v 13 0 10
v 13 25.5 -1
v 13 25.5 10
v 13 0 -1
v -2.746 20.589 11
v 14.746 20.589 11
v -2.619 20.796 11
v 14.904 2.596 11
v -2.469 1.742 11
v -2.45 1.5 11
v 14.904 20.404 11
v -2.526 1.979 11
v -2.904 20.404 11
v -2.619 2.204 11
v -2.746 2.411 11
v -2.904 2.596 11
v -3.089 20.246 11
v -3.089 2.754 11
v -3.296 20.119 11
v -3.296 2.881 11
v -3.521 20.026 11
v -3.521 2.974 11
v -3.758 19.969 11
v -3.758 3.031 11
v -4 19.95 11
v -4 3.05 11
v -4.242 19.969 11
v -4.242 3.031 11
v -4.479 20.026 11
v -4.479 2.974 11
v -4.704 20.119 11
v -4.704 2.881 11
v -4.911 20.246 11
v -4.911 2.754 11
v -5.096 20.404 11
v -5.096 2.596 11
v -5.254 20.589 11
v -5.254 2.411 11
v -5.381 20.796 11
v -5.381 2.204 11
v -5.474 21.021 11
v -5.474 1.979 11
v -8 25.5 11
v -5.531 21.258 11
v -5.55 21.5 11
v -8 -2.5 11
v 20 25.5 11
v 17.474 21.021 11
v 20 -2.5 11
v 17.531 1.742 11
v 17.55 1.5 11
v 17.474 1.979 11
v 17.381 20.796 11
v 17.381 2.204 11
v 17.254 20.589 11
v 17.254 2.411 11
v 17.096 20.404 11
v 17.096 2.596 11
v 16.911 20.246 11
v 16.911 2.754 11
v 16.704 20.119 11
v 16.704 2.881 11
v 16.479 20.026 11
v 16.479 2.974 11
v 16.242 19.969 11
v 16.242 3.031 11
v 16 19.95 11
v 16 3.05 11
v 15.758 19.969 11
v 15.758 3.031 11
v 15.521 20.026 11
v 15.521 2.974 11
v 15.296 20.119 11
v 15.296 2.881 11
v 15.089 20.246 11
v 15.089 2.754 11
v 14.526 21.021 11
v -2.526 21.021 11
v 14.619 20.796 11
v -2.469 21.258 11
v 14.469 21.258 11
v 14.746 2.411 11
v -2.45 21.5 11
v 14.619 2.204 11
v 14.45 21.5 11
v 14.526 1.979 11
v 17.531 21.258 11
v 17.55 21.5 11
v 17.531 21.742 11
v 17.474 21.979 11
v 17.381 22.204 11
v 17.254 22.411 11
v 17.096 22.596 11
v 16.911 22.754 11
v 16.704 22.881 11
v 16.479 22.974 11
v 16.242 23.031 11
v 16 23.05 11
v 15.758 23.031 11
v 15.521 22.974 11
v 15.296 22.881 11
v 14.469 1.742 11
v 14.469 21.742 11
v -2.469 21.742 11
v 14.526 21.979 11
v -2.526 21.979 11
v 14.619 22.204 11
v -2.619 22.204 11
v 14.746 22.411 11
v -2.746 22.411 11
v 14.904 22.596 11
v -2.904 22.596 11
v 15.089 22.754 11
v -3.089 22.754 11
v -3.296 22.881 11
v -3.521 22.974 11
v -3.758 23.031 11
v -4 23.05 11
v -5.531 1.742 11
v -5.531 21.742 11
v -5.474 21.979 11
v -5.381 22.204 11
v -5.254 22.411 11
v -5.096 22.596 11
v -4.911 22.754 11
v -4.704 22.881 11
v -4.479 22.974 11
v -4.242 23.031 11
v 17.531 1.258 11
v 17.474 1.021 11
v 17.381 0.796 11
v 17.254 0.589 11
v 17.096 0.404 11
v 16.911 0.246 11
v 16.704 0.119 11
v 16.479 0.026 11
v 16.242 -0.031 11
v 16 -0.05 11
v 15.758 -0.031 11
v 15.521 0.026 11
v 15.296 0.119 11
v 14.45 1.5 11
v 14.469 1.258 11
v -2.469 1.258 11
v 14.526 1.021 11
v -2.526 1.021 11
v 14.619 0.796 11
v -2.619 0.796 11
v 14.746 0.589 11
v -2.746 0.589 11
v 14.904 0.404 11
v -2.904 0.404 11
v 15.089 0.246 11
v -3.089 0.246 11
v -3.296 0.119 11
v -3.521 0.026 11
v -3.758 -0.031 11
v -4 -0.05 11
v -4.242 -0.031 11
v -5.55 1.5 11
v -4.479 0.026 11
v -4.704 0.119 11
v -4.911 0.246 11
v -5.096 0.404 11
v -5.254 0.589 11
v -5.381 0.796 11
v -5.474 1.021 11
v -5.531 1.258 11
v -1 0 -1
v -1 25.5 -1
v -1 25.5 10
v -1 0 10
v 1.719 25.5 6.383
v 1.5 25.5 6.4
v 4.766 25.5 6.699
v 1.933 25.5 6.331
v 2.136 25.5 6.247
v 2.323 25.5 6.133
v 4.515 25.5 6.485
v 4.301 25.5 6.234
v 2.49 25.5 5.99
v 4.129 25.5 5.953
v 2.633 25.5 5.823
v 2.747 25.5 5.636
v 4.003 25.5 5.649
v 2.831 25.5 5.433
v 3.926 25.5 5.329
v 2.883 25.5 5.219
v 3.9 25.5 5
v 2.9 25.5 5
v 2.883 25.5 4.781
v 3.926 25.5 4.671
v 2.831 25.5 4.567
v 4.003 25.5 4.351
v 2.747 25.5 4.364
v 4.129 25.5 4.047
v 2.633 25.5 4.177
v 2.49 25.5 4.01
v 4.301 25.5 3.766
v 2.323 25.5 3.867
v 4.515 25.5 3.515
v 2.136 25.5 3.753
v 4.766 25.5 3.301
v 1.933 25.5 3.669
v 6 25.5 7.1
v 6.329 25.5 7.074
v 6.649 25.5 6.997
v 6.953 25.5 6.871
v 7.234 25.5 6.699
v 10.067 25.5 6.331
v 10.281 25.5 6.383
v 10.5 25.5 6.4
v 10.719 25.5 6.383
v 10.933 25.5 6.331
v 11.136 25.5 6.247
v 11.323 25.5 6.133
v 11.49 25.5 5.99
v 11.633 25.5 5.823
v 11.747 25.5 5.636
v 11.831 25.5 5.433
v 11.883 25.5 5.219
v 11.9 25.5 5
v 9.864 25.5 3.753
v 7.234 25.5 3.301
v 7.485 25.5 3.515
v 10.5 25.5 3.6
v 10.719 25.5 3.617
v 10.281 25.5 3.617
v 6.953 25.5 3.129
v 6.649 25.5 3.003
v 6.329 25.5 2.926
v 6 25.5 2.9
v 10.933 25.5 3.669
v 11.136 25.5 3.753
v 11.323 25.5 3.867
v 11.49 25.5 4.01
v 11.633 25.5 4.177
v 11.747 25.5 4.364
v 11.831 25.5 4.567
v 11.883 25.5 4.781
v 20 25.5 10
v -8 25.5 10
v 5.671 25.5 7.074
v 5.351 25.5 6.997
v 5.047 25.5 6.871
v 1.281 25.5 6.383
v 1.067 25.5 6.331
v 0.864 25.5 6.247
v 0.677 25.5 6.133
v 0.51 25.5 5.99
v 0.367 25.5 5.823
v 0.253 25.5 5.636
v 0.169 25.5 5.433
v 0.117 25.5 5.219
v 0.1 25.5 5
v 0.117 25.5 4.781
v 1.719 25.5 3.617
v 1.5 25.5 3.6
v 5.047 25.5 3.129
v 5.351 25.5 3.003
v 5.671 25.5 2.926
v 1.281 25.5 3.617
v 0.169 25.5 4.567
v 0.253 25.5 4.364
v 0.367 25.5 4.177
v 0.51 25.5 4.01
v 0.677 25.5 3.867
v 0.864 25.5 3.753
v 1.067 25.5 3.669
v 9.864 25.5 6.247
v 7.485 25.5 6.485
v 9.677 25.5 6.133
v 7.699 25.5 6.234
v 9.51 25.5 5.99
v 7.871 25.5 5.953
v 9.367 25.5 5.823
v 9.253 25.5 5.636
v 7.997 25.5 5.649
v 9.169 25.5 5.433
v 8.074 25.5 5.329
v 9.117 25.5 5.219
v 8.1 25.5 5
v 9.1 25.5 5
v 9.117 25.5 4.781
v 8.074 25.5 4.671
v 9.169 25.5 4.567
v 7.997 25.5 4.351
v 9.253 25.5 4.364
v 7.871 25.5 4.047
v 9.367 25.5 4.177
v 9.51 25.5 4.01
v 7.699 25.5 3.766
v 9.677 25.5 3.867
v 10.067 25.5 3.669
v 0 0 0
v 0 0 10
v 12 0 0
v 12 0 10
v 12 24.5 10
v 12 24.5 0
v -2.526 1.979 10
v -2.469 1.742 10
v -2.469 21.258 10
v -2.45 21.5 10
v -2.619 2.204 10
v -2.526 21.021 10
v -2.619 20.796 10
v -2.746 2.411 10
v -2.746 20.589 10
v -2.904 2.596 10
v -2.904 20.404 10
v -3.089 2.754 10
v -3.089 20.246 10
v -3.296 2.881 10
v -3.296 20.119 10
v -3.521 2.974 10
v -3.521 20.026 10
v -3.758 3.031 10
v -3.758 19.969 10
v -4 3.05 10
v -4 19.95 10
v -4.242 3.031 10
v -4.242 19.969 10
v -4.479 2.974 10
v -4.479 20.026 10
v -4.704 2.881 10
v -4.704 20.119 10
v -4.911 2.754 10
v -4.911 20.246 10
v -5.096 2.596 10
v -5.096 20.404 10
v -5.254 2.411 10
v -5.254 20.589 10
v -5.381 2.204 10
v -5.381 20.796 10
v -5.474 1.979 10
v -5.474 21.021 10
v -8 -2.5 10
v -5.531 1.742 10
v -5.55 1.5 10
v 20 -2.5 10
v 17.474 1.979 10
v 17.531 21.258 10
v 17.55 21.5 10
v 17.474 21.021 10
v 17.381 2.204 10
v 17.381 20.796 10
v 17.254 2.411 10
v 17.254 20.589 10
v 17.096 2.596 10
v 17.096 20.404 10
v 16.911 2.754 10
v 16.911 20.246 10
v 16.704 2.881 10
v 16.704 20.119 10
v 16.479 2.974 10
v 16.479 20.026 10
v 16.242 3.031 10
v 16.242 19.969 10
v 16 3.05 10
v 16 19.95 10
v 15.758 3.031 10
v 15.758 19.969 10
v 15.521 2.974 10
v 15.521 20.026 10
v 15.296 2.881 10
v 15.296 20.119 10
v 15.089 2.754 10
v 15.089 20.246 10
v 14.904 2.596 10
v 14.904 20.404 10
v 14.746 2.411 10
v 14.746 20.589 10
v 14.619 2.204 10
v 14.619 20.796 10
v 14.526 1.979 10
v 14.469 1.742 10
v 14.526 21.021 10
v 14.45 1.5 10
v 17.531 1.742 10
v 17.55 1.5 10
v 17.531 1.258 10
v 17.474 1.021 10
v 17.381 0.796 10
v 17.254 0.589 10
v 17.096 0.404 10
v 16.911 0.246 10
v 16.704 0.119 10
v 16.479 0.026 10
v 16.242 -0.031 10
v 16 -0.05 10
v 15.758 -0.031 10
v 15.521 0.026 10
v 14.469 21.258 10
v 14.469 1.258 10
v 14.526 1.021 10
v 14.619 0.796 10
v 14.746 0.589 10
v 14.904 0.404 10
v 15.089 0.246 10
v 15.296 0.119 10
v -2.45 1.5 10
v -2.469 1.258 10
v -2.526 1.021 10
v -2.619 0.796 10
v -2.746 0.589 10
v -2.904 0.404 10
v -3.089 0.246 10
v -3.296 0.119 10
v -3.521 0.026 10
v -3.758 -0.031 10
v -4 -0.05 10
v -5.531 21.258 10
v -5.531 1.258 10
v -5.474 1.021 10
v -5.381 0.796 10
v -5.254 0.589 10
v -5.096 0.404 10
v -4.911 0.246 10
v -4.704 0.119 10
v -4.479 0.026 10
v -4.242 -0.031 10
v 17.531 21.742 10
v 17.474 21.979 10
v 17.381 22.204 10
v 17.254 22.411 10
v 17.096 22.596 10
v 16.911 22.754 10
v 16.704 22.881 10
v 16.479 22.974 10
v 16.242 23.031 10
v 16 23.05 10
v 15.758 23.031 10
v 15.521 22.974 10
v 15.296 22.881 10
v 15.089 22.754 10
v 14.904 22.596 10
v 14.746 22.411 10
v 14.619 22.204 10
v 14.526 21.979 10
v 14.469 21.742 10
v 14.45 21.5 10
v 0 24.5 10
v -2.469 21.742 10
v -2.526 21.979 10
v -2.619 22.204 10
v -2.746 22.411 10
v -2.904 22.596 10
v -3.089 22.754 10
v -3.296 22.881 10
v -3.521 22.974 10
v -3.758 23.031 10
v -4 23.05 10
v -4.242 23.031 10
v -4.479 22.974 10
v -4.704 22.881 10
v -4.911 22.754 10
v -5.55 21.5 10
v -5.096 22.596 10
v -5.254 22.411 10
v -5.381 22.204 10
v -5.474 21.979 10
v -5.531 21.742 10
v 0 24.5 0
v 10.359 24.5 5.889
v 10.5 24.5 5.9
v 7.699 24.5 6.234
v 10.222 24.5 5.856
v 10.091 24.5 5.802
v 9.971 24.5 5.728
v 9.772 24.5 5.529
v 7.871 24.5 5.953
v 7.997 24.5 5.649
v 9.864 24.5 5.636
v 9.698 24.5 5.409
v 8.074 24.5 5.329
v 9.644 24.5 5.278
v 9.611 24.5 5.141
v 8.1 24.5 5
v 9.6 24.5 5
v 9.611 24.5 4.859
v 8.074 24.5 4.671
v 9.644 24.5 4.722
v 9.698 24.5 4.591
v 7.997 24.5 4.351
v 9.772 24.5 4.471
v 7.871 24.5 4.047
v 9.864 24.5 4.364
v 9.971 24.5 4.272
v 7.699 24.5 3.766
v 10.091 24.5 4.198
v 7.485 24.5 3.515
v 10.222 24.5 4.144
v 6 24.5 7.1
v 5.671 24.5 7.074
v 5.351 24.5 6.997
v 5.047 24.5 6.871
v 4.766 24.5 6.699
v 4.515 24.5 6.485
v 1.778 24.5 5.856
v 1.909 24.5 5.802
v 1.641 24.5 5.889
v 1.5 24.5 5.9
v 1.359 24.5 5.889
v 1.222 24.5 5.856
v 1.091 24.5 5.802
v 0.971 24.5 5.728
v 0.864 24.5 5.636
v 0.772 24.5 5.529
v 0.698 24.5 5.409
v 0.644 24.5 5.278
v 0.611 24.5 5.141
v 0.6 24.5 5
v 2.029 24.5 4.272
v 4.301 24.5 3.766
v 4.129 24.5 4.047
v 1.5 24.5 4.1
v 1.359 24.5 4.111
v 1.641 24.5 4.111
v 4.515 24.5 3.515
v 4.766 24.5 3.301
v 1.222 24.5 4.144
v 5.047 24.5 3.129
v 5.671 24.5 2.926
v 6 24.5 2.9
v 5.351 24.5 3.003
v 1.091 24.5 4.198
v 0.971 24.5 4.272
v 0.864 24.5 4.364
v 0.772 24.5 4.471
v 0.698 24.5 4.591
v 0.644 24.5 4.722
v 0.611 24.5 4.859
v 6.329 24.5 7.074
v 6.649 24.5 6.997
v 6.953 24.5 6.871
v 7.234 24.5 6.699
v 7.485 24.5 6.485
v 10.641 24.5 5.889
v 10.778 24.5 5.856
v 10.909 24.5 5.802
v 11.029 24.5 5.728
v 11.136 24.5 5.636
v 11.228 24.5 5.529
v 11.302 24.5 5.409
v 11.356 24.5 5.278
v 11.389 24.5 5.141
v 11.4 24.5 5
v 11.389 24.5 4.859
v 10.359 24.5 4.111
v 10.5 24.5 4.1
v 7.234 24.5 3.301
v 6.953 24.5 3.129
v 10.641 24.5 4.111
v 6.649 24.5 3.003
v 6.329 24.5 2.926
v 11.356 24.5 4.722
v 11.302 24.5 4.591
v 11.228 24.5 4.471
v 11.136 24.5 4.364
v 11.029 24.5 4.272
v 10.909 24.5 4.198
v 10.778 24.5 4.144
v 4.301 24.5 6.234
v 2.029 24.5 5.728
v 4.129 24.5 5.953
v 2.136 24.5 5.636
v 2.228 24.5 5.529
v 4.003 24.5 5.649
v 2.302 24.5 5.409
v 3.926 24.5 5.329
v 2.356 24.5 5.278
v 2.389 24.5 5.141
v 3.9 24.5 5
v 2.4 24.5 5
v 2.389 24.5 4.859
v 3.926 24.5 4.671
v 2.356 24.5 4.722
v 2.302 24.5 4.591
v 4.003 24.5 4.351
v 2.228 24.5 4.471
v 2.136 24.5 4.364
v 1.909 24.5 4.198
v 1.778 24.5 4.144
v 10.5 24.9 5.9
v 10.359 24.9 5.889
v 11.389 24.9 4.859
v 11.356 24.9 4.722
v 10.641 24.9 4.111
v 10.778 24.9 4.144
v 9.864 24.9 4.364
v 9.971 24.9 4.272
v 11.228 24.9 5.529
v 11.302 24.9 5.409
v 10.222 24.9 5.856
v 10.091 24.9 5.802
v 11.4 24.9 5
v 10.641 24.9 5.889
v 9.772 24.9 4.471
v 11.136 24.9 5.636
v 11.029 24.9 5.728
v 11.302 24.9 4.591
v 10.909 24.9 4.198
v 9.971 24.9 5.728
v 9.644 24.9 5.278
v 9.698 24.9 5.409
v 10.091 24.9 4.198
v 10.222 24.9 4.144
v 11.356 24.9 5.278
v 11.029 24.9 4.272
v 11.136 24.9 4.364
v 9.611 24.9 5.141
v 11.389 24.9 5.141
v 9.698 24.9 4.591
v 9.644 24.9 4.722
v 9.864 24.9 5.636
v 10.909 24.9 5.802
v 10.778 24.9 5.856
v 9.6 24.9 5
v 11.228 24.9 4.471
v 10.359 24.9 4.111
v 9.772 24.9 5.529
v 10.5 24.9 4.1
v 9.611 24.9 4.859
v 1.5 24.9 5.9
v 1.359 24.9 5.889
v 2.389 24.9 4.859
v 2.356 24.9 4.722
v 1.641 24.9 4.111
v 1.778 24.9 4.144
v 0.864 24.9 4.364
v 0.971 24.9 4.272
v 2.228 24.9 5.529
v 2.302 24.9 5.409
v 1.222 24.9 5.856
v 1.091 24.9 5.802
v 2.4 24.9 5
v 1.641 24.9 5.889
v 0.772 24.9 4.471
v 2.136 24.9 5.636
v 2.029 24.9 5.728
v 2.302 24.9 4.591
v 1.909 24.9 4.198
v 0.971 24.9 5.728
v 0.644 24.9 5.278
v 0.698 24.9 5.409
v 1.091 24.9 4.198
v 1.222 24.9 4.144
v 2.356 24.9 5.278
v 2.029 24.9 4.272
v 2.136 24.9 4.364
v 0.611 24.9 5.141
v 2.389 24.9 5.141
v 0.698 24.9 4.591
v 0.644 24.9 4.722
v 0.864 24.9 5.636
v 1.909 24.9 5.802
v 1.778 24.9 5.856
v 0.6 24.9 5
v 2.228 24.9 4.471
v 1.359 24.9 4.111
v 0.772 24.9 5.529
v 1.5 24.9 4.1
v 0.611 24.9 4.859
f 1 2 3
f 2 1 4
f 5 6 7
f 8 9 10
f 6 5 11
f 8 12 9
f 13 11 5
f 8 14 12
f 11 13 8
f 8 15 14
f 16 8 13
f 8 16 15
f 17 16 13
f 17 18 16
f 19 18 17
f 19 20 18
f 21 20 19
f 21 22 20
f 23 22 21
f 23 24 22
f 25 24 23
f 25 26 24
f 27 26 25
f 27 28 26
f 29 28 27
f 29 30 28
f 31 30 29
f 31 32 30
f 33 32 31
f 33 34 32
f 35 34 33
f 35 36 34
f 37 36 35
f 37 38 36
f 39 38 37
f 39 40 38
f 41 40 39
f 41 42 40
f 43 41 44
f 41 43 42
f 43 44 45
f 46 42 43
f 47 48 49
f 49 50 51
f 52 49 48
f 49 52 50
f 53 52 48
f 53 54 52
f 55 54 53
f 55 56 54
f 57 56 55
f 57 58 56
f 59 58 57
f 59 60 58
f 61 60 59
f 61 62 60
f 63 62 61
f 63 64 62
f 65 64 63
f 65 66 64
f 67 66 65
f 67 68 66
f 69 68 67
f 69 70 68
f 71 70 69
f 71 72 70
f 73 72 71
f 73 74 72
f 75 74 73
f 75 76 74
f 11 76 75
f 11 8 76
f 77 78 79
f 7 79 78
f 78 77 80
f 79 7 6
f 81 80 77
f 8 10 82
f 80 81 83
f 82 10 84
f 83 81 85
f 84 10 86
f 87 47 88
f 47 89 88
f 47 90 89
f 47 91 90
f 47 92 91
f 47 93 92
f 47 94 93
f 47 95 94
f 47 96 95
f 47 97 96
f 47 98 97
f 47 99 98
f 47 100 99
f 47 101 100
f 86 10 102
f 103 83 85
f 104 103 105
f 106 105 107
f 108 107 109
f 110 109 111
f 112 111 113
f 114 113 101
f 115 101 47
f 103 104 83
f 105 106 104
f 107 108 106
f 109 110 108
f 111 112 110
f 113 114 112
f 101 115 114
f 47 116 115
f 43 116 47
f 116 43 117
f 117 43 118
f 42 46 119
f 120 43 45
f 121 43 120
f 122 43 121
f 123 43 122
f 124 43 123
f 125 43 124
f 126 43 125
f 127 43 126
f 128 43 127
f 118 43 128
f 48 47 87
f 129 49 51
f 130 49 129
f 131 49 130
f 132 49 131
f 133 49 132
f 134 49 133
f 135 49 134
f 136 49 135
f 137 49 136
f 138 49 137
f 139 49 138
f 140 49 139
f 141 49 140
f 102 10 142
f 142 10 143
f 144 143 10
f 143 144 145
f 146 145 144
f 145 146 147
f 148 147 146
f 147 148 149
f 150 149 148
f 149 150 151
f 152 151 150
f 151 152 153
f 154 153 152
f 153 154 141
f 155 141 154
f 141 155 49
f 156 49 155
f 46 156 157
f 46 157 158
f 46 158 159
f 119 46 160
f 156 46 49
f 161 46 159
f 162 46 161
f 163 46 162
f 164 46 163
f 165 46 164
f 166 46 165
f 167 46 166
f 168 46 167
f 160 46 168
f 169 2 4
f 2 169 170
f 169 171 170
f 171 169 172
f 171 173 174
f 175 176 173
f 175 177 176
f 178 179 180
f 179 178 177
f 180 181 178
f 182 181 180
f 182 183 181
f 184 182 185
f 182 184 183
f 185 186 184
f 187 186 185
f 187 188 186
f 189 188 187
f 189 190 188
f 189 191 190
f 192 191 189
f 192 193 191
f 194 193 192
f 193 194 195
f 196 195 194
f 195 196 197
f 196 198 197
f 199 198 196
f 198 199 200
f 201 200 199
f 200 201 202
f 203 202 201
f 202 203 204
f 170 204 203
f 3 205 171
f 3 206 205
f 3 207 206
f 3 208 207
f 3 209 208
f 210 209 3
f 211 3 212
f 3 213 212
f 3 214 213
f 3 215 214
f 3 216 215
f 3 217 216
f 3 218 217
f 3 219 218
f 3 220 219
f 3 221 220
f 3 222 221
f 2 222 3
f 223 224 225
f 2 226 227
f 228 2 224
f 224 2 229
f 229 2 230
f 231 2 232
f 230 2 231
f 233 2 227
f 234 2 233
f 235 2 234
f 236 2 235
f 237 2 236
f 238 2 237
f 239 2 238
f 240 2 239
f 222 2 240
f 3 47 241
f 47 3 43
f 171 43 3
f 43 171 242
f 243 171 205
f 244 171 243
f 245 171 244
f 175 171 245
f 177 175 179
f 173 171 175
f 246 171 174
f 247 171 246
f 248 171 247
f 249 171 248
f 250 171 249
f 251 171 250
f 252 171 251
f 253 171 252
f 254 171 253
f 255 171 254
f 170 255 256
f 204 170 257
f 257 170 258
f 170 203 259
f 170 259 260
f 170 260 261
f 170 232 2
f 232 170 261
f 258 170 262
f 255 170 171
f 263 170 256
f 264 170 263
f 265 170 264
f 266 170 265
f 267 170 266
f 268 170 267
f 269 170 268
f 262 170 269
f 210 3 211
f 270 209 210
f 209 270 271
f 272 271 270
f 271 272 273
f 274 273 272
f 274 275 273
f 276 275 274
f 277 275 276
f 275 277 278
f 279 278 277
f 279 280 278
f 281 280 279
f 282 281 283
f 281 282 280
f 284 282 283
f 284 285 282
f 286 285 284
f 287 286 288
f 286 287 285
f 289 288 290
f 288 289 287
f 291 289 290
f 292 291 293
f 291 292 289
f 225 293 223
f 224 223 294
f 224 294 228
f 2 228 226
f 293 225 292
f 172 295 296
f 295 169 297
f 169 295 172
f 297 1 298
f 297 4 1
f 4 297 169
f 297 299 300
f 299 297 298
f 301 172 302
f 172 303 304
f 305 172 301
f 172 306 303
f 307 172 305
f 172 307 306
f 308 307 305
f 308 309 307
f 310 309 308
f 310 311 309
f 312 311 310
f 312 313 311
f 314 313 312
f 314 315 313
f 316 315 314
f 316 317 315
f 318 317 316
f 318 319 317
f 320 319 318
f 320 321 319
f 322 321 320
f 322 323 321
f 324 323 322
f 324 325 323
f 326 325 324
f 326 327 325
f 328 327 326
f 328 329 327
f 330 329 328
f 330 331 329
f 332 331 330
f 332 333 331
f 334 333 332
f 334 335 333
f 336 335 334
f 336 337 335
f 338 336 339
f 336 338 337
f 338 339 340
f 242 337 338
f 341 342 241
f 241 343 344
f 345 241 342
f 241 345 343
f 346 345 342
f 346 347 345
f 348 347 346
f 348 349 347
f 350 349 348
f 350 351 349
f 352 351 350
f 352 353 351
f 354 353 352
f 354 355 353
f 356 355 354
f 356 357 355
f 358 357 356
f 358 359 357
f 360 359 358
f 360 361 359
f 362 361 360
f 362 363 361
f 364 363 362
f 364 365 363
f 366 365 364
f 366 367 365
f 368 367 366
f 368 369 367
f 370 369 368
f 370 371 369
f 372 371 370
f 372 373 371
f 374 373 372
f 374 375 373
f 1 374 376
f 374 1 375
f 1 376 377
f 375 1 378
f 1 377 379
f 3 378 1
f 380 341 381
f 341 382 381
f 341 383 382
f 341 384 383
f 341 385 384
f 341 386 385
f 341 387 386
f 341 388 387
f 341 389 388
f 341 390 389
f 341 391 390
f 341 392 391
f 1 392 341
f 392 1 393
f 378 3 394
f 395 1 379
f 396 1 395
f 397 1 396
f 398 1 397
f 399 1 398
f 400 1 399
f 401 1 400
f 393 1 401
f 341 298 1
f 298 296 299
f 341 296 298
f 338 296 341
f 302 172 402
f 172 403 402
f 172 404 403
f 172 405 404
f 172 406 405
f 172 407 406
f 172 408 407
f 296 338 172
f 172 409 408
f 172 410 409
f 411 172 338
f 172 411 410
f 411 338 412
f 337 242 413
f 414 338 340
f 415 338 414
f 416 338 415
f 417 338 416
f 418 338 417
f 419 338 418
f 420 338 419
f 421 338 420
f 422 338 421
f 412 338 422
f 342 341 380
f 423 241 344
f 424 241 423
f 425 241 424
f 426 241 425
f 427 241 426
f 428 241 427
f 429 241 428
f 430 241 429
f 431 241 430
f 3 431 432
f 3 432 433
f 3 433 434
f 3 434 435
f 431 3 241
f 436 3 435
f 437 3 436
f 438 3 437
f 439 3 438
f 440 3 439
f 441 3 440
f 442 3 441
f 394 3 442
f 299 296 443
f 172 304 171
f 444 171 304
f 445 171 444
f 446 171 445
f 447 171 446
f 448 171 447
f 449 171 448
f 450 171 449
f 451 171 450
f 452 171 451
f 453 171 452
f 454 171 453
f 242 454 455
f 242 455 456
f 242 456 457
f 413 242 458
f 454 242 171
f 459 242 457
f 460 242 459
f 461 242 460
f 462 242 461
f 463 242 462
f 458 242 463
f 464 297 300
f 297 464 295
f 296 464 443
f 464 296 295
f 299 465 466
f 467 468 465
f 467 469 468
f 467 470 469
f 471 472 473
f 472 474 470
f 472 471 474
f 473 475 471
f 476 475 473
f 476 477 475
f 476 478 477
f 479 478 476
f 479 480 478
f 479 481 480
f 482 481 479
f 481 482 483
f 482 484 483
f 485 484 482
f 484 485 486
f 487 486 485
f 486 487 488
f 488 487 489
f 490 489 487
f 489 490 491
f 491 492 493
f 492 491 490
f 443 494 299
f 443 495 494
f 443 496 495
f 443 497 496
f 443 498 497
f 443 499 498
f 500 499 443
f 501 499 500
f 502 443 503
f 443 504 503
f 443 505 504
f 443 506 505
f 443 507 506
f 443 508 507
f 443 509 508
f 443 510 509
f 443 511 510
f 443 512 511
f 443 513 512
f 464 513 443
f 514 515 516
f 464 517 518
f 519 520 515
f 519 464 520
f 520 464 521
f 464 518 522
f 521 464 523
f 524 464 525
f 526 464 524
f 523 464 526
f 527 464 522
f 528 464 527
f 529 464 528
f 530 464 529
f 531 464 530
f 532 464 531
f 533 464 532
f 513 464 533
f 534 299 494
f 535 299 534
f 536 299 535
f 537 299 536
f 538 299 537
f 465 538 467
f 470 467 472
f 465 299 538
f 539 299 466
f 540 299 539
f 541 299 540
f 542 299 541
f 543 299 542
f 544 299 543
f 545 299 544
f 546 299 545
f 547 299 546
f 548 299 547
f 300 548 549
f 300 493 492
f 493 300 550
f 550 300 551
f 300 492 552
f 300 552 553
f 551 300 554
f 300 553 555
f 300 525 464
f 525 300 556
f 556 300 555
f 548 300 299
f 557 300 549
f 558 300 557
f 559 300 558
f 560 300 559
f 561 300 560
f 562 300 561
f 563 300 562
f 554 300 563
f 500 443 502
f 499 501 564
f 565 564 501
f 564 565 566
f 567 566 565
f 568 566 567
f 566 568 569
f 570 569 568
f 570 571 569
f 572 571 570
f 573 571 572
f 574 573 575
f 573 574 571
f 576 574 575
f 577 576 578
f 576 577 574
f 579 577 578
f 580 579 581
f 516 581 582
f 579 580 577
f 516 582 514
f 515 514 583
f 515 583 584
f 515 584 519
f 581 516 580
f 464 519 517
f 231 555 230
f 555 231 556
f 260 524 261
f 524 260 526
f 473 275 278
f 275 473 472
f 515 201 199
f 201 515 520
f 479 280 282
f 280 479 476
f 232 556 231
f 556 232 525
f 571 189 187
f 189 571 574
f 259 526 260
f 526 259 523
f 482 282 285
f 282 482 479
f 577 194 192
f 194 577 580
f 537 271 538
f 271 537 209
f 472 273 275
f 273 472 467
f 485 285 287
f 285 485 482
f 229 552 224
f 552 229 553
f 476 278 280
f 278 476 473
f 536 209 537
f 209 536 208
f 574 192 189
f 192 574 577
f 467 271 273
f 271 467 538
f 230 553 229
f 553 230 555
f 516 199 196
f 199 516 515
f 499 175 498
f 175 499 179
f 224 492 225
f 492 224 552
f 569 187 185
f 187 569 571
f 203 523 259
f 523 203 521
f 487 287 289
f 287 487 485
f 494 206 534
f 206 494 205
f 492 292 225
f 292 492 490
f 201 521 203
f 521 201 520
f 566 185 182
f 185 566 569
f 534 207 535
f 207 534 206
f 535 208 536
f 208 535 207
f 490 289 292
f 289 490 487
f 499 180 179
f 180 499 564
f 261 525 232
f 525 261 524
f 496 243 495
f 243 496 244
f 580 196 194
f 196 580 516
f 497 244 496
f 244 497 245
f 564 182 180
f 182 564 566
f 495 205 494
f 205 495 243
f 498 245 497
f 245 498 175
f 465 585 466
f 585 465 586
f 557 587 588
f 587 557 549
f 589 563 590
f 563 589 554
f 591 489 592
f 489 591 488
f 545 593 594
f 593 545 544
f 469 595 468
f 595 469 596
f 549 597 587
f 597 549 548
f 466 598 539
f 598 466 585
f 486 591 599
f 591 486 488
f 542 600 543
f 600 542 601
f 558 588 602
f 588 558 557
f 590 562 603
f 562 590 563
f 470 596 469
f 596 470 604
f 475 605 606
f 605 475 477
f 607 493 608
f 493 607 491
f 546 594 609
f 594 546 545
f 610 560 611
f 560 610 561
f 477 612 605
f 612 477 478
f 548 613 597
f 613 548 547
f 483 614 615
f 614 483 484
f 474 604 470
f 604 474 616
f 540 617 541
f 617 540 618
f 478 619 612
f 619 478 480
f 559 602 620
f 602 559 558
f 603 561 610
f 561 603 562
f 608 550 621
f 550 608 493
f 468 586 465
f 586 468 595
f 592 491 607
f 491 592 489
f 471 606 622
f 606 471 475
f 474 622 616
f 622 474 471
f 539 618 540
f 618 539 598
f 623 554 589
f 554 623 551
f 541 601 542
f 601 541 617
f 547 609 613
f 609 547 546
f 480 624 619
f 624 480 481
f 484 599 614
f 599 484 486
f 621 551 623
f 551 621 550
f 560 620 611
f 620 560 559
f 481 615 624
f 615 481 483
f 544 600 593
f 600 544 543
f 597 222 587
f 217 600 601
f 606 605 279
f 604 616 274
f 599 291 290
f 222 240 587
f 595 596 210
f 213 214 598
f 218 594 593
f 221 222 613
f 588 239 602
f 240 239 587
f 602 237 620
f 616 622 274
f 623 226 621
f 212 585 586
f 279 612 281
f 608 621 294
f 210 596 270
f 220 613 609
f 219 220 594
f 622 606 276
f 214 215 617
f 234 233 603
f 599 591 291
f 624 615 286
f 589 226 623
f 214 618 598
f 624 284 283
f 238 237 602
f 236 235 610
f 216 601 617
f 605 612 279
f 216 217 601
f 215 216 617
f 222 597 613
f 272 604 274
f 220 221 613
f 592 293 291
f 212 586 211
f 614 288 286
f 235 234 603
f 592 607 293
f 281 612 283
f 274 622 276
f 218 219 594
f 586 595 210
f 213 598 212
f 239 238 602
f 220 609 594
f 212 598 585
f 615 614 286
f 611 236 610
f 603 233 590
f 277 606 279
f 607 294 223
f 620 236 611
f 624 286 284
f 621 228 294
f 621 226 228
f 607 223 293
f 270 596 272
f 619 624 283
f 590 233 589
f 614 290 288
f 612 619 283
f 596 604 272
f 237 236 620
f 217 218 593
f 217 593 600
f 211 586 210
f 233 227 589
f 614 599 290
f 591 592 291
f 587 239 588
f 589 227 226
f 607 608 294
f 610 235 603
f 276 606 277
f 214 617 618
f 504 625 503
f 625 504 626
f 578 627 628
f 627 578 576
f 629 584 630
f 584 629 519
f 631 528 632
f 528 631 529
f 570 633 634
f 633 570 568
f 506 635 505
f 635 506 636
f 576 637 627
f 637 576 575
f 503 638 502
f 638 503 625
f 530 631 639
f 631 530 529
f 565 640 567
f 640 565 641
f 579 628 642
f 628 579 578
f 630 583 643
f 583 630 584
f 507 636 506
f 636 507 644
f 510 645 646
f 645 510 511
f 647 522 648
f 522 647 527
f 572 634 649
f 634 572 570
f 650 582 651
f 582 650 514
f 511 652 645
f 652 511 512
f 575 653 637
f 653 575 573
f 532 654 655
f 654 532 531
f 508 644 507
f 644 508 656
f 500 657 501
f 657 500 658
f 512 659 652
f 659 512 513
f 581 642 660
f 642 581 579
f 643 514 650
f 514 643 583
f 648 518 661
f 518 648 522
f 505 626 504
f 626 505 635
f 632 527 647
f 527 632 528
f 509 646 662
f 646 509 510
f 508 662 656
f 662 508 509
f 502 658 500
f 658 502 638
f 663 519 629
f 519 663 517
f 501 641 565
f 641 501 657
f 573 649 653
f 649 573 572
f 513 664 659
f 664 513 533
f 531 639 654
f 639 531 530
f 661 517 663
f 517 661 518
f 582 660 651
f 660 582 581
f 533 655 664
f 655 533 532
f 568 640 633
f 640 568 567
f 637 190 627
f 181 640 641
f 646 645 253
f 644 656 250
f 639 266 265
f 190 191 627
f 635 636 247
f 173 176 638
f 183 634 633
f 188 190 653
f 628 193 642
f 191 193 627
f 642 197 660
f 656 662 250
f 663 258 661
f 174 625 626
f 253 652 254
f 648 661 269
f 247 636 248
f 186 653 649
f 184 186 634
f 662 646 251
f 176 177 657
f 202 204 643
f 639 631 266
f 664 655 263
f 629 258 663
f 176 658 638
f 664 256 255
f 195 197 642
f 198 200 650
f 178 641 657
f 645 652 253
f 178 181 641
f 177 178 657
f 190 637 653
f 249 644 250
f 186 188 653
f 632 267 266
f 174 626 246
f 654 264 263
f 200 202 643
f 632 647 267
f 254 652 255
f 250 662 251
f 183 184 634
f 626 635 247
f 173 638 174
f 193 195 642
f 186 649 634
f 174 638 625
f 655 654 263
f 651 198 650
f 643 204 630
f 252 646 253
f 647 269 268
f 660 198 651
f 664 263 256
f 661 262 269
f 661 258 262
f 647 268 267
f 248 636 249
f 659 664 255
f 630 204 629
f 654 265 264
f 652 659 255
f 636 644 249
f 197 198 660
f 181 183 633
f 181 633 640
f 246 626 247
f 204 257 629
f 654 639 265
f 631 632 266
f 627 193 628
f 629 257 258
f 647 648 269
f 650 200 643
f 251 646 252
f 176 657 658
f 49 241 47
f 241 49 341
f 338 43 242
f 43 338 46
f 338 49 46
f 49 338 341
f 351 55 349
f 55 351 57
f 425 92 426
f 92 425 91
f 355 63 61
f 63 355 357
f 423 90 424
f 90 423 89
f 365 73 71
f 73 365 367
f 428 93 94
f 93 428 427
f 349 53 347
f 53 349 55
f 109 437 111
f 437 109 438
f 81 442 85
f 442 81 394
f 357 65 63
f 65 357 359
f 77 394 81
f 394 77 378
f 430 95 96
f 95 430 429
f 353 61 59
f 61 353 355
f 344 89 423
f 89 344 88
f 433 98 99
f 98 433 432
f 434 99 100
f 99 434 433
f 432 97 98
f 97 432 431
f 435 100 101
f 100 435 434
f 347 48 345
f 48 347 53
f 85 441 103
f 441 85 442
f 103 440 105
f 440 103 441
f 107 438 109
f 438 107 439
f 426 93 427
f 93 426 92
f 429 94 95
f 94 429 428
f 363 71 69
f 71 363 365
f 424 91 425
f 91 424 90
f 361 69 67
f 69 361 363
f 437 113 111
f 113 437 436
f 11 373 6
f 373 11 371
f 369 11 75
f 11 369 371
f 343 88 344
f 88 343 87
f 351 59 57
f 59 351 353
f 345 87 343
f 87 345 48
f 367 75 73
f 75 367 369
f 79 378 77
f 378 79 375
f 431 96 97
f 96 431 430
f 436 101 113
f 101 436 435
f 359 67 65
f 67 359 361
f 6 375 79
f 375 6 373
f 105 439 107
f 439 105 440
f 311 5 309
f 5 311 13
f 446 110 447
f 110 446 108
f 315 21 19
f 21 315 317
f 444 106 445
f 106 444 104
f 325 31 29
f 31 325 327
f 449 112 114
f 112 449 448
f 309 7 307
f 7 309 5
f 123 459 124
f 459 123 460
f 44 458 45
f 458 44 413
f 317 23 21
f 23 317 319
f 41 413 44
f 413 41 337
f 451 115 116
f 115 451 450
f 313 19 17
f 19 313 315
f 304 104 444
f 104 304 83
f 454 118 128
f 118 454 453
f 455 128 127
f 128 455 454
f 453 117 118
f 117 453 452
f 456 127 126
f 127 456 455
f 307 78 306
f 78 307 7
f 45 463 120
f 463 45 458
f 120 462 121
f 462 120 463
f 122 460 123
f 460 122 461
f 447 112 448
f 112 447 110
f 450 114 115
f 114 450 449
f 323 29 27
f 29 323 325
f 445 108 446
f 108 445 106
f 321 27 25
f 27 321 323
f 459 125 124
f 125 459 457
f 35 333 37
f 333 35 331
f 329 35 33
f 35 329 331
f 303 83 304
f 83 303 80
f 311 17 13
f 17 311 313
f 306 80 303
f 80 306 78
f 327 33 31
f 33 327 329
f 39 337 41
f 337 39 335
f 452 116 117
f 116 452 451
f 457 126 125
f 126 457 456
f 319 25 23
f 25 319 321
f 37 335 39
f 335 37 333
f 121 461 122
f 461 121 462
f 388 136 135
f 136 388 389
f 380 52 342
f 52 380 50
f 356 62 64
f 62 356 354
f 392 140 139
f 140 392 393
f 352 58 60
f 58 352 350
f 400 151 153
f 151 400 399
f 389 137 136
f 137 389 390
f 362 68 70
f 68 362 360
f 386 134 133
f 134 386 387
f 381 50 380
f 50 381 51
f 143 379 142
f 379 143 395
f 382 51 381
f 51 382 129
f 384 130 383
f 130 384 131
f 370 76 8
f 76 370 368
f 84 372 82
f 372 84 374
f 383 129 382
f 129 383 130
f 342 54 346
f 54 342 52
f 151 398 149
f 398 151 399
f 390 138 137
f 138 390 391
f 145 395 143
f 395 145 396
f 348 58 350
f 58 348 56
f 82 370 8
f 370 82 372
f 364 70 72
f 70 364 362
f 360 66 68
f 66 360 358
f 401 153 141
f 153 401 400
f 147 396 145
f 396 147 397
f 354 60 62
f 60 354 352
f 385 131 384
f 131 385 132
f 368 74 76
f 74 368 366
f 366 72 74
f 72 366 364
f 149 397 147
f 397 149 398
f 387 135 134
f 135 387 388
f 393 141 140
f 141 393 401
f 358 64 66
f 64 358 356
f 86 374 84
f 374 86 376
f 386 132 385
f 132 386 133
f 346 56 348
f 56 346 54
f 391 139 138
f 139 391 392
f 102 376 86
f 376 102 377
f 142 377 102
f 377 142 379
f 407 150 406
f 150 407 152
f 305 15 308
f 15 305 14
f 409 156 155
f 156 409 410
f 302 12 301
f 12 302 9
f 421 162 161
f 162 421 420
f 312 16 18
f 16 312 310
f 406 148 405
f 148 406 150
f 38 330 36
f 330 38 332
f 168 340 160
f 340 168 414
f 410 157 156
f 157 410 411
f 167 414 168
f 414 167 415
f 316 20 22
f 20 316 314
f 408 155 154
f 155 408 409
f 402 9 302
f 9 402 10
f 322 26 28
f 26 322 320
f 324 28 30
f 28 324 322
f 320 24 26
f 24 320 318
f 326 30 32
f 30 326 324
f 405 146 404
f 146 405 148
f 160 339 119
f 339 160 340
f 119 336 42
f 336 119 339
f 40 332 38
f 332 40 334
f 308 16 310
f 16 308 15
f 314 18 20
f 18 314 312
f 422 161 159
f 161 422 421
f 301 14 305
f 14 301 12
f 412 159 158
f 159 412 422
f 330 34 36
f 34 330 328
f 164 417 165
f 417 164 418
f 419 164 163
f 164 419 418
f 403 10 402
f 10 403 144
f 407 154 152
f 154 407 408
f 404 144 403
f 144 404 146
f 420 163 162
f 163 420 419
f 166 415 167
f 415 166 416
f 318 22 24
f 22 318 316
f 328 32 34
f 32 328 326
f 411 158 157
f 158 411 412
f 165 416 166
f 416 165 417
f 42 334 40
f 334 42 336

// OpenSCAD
width=12;
height=10;
depth=24.5;
wall=1;
shaft_d=4.2;
screw_holes_from_center = 4.5;
screw_hole_d = 1.8;
screw_head_d = 2.8;
screw_head_depth = 0.6;
mounting_hole_distance = 20;
mounting_screw_d = 3.1;
mounting_plate_size = 28;

$fn=40;

module motor_box() {
    difference() {
        difference() {
            translate([-wall,0,-wall])
            cube([width+wall*2, depth+wall, height+wall*2]);
            cube([width, depth, height]);
        }
        translate([width/2,depth,height/2])
        rotate([-90,0,0])
        cylinder(wall, d=shaft_d);
    }
}

module screw_hole(offset) {
    translate([width/2+offset,depth,height/2])
    rotate([-90,0,0])
    union() {
        cylinder(wall, d=screw_hole_d);
        translate([0,0,wall-screw_head_depth])
            cylinder(screw_head_depth, d1=screw_hole_d, d2=screw_head_d);
    }
}

module mounting_screw_hole(x, y) {
    off = mounting_hole_distance / 2;
    translate([
        mounting_plate_size/2 + off*x,
        mounting_plate_size/2 + off*y,
        0
    ])
    cylinder(h=wall, d=mounting_screw_d);
}

module mounting_ears() {
    translate([
        width/2-mounting_plate_size/2,
        (depth+wall)-mounting_plate_size,
        height
    ])
    difference() { 
        cube([mounting_plate_size, mounting_plate_size, wall]);
        mounting_screw_hole(1,1);
        mounting_screw_hole(-1,1);
        mounting_screw_hole(1,-1);
        mounting_screw_hole(-1,-1);
    }
}

difference() {
    motor_box();
    screw_hole(screw_holes_from_center);
    screw_hole(-screw_holes_from_center);
}
mounting_ears();
